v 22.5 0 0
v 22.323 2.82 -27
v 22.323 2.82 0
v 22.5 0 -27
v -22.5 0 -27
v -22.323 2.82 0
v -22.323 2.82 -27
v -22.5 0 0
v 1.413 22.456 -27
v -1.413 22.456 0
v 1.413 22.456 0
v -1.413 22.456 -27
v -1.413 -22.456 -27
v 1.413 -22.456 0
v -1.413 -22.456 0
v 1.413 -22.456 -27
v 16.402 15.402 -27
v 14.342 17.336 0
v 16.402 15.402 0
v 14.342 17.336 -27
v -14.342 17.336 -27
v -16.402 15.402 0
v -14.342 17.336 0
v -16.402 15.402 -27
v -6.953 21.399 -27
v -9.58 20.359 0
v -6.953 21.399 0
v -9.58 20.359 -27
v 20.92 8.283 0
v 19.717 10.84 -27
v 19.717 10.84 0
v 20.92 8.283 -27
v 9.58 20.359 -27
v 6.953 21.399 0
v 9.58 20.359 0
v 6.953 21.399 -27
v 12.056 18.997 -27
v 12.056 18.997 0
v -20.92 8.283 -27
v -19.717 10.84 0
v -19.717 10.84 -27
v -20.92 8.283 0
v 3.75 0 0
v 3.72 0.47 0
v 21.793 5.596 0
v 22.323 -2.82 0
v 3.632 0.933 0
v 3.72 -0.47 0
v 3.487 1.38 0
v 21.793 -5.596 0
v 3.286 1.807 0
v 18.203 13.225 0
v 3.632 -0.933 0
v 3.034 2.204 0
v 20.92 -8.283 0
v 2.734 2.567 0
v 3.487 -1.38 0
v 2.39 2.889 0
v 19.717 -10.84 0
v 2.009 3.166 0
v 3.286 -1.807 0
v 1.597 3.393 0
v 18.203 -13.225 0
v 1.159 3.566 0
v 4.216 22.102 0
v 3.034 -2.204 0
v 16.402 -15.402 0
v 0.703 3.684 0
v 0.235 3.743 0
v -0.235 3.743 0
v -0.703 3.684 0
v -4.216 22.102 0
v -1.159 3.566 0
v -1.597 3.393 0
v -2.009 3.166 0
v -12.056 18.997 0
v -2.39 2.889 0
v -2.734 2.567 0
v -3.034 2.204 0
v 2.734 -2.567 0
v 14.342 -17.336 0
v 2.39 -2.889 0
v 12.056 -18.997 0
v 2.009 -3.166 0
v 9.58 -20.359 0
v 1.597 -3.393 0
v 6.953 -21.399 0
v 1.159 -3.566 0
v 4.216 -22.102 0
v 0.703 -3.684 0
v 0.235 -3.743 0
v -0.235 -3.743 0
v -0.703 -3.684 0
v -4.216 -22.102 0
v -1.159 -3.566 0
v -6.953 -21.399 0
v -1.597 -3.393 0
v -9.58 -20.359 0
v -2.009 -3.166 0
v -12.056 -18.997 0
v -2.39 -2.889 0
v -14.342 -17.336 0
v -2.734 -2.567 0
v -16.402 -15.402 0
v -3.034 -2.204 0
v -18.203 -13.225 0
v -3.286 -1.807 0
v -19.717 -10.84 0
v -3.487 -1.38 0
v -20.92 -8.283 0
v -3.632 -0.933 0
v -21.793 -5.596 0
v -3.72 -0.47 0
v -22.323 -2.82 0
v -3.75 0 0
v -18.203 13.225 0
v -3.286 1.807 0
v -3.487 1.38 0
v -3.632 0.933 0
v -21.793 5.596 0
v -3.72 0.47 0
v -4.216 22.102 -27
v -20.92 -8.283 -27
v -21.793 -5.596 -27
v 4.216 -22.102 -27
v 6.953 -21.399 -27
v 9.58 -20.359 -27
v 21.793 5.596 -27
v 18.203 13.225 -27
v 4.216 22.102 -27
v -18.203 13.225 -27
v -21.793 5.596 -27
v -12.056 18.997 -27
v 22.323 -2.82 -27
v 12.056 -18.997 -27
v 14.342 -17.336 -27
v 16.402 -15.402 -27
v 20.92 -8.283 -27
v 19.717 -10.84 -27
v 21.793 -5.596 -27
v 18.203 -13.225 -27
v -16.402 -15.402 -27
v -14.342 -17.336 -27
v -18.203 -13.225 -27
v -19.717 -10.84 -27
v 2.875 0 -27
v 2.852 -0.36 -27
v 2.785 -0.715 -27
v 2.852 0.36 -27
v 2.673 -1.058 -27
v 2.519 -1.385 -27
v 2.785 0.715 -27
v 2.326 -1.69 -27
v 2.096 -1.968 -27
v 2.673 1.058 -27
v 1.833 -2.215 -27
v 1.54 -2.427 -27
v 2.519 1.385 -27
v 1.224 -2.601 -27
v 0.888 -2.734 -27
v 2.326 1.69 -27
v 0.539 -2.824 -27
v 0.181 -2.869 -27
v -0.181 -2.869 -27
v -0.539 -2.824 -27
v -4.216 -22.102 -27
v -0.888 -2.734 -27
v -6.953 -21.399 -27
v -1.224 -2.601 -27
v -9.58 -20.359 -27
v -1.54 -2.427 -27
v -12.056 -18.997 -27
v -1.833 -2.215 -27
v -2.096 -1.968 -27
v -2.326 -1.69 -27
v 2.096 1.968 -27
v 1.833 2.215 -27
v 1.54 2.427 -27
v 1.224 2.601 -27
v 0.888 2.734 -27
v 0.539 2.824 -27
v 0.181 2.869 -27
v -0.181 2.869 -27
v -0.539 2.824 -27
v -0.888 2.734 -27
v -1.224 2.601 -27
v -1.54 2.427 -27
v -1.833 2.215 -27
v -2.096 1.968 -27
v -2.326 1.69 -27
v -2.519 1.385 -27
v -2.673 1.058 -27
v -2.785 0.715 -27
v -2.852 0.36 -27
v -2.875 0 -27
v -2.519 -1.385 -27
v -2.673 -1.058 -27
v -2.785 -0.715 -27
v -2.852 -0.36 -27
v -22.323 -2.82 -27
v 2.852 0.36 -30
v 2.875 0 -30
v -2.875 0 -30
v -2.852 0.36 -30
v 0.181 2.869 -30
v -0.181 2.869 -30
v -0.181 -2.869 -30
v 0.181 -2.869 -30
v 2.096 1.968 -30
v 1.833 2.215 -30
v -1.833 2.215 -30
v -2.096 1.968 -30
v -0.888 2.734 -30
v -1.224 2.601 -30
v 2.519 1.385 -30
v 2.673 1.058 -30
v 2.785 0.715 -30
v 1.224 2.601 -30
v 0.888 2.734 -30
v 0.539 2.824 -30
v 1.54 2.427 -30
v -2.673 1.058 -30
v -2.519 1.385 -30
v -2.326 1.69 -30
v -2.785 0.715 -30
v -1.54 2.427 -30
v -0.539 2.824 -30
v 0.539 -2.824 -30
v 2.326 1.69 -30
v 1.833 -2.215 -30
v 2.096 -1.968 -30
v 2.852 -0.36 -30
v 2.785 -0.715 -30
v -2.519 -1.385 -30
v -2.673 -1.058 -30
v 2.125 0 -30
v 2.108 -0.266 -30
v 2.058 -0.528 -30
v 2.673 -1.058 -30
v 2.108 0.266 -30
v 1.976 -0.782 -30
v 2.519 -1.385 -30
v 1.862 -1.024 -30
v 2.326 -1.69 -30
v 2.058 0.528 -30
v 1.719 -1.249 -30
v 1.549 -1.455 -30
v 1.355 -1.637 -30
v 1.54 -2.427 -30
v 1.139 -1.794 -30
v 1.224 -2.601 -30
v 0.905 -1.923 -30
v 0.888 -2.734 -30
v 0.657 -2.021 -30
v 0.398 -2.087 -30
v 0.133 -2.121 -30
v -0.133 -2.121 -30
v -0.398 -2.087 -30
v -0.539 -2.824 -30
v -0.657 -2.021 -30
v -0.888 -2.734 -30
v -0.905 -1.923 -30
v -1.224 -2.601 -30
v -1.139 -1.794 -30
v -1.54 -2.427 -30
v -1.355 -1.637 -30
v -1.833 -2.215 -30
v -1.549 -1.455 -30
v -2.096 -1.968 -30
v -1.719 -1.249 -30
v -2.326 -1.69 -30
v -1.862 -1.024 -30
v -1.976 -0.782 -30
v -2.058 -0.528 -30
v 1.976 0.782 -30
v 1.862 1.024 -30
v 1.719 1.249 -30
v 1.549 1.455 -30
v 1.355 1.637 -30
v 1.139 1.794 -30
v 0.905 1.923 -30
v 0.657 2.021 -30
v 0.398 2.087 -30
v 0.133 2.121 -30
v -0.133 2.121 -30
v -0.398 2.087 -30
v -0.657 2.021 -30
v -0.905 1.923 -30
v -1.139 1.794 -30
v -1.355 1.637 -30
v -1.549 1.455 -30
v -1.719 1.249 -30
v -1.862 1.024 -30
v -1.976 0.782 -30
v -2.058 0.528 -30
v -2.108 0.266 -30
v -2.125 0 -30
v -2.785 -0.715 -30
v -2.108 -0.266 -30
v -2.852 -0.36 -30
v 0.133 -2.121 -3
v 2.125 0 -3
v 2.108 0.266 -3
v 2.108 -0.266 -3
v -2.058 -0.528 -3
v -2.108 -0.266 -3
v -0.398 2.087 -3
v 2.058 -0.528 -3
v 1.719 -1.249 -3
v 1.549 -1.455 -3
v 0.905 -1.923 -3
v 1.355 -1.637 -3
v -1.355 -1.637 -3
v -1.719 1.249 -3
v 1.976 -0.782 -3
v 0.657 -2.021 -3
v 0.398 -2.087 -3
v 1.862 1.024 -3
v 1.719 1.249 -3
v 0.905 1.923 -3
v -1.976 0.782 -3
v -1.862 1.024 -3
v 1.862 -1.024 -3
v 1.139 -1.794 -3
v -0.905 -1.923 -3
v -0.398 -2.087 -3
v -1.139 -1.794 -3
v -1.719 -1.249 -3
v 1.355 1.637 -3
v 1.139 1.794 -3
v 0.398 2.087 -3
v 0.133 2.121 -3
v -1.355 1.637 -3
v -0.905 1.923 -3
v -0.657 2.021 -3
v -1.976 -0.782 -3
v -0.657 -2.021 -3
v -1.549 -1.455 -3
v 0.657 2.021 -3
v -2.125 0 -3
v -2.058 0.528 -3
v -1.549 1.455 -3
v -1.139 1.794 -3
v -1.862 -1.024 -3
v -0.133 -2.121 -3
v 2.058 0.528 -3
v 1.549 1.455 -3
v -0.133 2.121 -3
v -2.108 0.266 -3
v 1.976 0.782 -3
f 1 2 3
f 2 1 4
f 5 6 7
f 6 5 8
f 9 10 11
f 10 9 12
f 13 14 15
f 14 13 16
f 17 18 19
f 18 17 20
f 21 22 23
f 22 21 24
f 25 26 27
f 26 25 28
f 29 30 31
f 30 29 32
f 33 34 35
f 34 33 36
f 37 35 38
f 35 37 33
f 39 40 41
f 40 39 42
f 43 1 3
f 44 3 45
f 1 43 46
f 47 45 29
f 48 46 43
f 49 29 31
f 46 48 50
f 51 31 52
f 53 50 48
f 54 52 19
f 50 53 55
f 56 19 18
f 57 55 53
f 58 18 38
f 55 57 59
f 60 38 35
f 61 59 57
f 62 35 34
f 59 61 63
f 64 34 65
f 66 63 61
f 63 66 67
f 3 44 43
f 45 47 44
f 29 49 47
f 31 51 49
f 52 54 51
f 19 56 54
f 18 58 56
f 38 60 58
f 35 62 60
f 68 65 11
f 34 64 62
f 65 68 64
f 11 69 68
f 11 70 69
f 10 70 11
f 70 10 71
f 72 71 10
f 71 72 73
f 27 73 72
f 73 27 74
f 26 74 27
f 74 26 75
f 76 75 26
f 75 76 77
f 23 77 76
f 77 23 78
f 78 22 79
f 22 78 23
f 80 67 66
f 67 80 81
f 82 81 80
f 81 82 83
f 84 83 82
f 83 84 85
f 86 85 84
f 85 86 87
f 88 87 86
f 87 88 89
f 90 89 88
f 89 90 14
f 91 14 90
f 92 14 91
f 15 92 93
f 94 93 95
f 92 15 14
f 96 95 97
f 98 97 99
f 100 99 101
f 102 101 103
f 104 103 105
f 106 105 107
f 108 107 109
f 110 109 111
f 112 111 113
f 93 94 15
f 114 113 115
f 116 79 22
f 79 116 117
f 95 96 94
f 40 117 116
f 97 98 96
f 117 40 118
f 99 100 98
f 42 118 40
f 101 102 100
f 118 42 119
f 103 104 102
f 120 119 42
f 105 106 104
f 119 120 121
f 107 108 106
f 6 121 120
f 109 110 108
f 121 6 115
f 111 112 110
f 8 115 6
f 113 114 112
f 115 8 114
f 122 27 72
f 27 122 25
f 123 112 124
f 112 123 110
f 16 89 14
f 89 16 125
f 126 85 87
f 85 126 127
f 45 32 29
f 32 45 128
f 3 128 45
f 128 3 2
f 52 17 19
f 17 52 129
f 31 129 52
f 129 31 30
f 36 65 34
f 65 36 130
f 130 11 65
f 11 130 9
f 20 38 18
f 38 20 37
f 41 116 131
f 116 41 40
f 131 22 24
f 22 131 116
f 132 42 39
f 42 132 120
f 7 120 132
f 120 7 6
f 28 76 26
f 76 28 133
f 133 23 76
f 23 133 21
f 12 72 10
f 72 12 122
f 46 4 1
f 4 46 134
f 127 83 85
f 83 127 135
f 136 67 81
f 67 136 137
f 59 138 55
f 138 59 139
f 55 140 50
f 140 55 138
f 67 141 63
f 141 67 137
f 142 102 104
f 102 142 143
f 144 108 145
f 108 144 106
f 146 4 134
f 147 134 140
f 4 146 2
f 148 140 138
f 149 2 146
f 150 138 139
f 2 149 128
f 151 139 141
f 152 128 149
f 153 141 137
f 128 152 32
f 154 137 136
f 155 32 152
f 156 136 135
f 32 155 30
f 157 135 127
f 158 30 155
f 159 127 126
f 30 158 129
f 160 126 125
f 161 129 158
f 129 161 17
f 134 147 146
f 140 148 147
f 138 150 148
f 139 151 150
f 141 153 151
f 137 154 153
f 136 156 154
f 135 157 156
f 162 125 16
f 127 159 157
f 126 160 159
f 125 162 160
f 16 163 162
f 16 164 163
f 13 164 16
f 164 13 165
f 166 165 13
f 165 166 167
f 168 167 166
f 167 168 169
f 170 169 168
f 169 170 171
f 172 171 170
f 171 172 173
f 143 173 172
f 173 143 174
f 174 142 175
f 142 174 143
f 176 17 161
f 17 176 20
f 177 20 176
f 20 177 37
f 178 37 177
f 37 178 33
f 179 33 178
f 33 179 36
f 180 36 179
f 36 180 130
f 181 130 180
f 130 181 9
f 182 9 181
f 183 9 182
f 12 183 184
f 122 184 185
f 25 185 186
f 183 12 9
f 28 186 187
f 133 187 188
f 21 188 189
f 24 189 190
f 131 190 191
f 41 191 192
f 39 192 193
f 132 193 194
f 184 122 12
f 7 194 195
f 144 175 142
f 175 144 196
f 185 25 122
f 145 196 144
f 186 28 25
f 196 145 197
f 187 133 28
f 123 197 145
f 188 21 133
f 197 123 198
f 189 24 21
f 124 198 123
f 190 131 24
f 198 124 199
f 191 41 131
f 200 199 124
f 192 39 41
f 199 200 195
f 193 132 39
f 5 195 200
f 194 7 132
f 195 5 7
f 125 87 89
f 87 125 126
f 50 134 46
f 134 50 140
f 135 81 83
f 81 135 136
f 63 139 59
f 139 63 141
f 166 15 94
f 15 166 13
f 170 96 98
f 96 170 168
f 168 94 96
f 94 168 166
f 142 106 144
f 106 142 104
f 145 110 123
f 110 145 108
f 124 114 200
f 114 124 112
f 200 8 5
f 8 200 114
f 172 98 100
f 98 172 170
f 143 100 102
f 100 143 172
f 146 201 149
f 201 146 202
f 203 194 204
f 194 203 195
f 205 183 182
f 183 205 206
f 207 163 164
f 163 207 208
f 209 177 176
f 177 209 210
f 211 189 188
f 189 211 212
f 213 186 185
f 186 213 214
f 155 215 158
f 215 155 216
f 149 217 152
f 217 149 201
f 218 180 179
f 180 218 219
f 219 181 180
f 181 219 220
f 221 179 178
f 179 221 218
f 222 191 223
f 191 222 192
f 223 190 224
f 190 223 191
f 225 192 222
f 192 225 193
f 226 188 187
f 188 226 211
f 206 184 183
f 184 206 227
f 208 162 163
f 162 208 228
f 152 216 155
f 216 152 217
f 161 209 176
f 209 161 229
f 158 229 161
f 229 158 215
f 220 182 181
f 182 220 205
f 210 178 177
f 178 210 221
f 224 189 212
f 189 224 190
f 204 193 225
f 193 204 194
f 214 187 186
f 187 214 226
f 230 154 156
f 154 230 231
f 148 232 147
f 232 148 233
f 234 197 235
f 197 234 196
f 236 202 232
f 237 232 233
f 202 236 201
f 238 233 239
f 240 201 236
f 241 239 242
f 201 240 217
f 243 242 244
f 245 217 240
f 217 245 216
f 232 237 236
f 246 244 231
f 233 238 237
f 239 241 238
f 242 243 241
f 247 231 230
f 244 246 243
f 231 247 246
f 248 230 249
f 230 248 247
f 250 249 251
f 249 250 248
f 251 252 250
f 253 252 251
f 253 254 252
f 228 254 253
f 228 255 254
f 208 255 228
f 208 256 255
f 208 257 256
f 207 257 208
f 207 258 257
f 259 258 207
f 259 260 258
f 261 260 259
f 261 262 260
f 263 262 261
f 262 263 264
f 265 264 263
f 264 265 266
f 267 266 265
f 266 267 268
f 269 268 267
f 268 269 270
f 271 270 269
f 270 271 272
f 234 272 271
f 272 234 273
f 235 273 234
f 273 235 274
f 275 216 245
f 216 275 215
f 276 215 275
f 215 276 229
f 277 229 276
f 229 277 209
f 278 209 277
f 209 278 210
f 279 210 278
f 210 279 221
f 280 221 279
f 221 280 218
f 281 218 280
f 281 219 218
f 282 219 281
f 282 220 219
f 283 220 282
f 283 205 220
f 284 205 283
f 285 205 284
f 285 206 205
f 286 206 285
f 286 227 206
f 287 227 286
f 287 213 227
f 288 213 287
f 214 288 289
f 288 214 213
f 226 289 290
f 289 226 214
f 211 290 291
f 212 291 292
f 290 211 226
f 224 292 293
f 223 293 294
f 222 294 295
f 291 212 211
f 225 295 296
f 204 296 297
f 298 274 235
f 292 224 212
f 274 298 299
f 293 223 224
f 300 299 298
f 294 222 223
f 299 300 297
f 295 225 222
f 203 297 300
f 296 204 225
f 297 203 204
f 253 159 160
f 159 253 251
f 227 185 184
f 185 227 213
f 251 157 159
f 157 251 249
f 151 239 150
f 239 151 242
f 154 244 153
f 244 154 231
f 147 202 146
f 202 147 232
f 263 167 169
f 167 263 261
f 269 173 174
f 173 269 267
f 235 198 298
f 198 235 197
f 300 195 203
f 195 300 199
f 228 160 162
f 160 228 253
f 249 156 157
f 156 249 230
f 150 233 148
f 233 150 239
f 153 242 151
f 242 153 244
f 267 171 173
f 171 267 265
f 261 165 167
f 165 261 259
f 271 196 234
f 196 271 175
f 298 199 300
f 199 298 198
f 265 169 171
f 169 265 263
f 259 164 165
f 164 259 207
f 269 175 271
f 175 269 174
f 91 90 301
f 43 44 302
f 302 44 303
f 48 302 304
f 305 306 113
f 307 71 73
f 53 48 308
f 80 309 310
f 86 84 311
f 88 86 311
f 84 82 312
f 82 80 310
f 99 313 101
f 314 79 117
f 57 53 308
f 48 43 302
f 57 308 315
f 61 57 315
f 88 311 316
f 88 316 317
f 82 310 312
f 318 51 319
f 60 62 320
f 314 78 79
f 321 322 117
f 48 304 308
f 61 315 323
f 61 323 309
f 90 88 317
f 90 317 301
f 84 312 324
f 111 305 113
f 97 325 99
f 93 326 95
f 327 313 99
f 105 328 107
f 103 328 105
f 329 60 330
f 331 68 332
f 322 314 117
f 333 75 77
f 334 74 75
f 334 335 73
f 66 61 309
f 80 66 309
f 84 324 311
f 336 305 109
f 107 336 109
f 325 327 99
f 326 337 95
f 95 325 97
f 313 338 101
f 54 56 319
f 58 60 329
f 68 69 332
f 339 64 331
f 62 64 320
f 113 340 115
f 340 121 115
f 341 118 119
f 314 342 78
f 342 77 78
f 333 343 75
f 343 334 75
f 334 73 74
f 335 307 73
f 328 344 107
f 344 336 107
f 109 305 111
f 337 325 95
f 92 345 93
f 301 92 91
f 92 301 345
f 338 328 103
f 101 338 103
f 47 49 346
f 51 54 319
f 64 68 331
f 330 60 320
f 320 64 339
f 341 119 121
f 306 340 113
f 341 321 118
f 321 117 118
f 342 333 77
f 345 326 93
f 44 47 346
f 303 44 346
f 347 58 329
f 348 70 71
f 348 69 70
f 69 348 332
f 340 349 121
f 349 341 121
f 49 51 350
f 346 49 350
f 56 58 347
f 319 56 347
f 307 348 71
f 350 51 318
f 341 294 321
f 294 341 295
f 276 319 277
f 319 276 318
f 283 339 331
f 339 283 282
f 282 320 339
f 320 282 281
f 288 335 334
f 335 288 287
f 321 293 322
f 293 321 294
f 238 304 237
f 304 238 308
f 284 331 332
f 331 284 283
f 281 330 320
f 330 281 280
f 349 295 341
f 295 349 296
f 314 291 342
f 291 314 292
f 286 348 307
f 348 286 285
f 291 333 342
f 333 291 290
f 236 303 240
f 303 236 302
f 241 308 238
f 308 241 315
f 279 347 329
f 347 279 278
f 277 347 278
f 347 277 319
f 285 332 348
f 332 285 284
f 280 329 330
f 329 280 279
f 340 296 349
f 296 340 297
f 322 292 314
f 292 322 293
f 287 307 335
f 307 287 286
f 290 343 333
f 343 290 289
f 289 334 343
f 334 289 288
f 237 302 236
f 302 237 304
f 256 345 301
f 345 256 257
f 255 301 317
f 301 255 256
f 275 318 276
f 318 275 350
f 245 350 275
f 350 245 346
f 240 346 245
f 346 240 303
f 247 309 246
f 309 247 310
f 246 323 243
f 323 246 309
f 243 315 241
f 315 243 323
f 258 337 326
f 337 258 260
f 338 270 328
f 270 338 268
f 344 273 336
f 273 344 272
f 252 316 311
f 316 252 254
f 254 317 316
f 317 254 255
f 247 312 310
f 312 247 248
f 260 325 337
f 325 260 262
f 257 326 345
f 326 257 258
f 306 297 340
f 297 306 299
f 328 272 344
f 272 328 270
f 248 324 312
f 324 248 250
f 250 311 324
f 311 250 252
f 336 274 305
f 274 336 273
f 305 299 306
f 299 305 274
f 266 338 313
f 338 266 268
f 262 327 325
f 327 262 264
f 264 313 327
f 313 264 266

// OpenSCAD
$fn = 50;


difference() {
	union() {
		translate(v = [0, 0, -27.0000000000]) {
			cylinder(h = 27, r = 22.5000000000);
		}
		#translate(v = [0, 0, -30.0000000000]) {
			cylinder(h = 30, r = 2.8750000000);
		}
	}
	union() {
		translate(v = [0, 0, 0]) {
			rotate(a = [0, 0, 0]) {
				difference() {
					union() {
						translate(v = [0, 0, -30.0000000000]) {
							cylinder(h = 30, r = 2.0000000000);
						}
						translate(v = [0, 0, -3]) {
							cylinder(h = 3, r1 = 2.1250000000, r2 = 3.7500000000);
						}
						translate(v = [0, 0, -30.0000000000]) {
							cylinder(h = 30, r = 2.1250000000);
						}
						translate(v = [0, 0, -30.0000000000]) {
							cylinder(h = 30, r = 2.0000000000);
						}
					}
					union();
				}
			}
		}
	}
}
